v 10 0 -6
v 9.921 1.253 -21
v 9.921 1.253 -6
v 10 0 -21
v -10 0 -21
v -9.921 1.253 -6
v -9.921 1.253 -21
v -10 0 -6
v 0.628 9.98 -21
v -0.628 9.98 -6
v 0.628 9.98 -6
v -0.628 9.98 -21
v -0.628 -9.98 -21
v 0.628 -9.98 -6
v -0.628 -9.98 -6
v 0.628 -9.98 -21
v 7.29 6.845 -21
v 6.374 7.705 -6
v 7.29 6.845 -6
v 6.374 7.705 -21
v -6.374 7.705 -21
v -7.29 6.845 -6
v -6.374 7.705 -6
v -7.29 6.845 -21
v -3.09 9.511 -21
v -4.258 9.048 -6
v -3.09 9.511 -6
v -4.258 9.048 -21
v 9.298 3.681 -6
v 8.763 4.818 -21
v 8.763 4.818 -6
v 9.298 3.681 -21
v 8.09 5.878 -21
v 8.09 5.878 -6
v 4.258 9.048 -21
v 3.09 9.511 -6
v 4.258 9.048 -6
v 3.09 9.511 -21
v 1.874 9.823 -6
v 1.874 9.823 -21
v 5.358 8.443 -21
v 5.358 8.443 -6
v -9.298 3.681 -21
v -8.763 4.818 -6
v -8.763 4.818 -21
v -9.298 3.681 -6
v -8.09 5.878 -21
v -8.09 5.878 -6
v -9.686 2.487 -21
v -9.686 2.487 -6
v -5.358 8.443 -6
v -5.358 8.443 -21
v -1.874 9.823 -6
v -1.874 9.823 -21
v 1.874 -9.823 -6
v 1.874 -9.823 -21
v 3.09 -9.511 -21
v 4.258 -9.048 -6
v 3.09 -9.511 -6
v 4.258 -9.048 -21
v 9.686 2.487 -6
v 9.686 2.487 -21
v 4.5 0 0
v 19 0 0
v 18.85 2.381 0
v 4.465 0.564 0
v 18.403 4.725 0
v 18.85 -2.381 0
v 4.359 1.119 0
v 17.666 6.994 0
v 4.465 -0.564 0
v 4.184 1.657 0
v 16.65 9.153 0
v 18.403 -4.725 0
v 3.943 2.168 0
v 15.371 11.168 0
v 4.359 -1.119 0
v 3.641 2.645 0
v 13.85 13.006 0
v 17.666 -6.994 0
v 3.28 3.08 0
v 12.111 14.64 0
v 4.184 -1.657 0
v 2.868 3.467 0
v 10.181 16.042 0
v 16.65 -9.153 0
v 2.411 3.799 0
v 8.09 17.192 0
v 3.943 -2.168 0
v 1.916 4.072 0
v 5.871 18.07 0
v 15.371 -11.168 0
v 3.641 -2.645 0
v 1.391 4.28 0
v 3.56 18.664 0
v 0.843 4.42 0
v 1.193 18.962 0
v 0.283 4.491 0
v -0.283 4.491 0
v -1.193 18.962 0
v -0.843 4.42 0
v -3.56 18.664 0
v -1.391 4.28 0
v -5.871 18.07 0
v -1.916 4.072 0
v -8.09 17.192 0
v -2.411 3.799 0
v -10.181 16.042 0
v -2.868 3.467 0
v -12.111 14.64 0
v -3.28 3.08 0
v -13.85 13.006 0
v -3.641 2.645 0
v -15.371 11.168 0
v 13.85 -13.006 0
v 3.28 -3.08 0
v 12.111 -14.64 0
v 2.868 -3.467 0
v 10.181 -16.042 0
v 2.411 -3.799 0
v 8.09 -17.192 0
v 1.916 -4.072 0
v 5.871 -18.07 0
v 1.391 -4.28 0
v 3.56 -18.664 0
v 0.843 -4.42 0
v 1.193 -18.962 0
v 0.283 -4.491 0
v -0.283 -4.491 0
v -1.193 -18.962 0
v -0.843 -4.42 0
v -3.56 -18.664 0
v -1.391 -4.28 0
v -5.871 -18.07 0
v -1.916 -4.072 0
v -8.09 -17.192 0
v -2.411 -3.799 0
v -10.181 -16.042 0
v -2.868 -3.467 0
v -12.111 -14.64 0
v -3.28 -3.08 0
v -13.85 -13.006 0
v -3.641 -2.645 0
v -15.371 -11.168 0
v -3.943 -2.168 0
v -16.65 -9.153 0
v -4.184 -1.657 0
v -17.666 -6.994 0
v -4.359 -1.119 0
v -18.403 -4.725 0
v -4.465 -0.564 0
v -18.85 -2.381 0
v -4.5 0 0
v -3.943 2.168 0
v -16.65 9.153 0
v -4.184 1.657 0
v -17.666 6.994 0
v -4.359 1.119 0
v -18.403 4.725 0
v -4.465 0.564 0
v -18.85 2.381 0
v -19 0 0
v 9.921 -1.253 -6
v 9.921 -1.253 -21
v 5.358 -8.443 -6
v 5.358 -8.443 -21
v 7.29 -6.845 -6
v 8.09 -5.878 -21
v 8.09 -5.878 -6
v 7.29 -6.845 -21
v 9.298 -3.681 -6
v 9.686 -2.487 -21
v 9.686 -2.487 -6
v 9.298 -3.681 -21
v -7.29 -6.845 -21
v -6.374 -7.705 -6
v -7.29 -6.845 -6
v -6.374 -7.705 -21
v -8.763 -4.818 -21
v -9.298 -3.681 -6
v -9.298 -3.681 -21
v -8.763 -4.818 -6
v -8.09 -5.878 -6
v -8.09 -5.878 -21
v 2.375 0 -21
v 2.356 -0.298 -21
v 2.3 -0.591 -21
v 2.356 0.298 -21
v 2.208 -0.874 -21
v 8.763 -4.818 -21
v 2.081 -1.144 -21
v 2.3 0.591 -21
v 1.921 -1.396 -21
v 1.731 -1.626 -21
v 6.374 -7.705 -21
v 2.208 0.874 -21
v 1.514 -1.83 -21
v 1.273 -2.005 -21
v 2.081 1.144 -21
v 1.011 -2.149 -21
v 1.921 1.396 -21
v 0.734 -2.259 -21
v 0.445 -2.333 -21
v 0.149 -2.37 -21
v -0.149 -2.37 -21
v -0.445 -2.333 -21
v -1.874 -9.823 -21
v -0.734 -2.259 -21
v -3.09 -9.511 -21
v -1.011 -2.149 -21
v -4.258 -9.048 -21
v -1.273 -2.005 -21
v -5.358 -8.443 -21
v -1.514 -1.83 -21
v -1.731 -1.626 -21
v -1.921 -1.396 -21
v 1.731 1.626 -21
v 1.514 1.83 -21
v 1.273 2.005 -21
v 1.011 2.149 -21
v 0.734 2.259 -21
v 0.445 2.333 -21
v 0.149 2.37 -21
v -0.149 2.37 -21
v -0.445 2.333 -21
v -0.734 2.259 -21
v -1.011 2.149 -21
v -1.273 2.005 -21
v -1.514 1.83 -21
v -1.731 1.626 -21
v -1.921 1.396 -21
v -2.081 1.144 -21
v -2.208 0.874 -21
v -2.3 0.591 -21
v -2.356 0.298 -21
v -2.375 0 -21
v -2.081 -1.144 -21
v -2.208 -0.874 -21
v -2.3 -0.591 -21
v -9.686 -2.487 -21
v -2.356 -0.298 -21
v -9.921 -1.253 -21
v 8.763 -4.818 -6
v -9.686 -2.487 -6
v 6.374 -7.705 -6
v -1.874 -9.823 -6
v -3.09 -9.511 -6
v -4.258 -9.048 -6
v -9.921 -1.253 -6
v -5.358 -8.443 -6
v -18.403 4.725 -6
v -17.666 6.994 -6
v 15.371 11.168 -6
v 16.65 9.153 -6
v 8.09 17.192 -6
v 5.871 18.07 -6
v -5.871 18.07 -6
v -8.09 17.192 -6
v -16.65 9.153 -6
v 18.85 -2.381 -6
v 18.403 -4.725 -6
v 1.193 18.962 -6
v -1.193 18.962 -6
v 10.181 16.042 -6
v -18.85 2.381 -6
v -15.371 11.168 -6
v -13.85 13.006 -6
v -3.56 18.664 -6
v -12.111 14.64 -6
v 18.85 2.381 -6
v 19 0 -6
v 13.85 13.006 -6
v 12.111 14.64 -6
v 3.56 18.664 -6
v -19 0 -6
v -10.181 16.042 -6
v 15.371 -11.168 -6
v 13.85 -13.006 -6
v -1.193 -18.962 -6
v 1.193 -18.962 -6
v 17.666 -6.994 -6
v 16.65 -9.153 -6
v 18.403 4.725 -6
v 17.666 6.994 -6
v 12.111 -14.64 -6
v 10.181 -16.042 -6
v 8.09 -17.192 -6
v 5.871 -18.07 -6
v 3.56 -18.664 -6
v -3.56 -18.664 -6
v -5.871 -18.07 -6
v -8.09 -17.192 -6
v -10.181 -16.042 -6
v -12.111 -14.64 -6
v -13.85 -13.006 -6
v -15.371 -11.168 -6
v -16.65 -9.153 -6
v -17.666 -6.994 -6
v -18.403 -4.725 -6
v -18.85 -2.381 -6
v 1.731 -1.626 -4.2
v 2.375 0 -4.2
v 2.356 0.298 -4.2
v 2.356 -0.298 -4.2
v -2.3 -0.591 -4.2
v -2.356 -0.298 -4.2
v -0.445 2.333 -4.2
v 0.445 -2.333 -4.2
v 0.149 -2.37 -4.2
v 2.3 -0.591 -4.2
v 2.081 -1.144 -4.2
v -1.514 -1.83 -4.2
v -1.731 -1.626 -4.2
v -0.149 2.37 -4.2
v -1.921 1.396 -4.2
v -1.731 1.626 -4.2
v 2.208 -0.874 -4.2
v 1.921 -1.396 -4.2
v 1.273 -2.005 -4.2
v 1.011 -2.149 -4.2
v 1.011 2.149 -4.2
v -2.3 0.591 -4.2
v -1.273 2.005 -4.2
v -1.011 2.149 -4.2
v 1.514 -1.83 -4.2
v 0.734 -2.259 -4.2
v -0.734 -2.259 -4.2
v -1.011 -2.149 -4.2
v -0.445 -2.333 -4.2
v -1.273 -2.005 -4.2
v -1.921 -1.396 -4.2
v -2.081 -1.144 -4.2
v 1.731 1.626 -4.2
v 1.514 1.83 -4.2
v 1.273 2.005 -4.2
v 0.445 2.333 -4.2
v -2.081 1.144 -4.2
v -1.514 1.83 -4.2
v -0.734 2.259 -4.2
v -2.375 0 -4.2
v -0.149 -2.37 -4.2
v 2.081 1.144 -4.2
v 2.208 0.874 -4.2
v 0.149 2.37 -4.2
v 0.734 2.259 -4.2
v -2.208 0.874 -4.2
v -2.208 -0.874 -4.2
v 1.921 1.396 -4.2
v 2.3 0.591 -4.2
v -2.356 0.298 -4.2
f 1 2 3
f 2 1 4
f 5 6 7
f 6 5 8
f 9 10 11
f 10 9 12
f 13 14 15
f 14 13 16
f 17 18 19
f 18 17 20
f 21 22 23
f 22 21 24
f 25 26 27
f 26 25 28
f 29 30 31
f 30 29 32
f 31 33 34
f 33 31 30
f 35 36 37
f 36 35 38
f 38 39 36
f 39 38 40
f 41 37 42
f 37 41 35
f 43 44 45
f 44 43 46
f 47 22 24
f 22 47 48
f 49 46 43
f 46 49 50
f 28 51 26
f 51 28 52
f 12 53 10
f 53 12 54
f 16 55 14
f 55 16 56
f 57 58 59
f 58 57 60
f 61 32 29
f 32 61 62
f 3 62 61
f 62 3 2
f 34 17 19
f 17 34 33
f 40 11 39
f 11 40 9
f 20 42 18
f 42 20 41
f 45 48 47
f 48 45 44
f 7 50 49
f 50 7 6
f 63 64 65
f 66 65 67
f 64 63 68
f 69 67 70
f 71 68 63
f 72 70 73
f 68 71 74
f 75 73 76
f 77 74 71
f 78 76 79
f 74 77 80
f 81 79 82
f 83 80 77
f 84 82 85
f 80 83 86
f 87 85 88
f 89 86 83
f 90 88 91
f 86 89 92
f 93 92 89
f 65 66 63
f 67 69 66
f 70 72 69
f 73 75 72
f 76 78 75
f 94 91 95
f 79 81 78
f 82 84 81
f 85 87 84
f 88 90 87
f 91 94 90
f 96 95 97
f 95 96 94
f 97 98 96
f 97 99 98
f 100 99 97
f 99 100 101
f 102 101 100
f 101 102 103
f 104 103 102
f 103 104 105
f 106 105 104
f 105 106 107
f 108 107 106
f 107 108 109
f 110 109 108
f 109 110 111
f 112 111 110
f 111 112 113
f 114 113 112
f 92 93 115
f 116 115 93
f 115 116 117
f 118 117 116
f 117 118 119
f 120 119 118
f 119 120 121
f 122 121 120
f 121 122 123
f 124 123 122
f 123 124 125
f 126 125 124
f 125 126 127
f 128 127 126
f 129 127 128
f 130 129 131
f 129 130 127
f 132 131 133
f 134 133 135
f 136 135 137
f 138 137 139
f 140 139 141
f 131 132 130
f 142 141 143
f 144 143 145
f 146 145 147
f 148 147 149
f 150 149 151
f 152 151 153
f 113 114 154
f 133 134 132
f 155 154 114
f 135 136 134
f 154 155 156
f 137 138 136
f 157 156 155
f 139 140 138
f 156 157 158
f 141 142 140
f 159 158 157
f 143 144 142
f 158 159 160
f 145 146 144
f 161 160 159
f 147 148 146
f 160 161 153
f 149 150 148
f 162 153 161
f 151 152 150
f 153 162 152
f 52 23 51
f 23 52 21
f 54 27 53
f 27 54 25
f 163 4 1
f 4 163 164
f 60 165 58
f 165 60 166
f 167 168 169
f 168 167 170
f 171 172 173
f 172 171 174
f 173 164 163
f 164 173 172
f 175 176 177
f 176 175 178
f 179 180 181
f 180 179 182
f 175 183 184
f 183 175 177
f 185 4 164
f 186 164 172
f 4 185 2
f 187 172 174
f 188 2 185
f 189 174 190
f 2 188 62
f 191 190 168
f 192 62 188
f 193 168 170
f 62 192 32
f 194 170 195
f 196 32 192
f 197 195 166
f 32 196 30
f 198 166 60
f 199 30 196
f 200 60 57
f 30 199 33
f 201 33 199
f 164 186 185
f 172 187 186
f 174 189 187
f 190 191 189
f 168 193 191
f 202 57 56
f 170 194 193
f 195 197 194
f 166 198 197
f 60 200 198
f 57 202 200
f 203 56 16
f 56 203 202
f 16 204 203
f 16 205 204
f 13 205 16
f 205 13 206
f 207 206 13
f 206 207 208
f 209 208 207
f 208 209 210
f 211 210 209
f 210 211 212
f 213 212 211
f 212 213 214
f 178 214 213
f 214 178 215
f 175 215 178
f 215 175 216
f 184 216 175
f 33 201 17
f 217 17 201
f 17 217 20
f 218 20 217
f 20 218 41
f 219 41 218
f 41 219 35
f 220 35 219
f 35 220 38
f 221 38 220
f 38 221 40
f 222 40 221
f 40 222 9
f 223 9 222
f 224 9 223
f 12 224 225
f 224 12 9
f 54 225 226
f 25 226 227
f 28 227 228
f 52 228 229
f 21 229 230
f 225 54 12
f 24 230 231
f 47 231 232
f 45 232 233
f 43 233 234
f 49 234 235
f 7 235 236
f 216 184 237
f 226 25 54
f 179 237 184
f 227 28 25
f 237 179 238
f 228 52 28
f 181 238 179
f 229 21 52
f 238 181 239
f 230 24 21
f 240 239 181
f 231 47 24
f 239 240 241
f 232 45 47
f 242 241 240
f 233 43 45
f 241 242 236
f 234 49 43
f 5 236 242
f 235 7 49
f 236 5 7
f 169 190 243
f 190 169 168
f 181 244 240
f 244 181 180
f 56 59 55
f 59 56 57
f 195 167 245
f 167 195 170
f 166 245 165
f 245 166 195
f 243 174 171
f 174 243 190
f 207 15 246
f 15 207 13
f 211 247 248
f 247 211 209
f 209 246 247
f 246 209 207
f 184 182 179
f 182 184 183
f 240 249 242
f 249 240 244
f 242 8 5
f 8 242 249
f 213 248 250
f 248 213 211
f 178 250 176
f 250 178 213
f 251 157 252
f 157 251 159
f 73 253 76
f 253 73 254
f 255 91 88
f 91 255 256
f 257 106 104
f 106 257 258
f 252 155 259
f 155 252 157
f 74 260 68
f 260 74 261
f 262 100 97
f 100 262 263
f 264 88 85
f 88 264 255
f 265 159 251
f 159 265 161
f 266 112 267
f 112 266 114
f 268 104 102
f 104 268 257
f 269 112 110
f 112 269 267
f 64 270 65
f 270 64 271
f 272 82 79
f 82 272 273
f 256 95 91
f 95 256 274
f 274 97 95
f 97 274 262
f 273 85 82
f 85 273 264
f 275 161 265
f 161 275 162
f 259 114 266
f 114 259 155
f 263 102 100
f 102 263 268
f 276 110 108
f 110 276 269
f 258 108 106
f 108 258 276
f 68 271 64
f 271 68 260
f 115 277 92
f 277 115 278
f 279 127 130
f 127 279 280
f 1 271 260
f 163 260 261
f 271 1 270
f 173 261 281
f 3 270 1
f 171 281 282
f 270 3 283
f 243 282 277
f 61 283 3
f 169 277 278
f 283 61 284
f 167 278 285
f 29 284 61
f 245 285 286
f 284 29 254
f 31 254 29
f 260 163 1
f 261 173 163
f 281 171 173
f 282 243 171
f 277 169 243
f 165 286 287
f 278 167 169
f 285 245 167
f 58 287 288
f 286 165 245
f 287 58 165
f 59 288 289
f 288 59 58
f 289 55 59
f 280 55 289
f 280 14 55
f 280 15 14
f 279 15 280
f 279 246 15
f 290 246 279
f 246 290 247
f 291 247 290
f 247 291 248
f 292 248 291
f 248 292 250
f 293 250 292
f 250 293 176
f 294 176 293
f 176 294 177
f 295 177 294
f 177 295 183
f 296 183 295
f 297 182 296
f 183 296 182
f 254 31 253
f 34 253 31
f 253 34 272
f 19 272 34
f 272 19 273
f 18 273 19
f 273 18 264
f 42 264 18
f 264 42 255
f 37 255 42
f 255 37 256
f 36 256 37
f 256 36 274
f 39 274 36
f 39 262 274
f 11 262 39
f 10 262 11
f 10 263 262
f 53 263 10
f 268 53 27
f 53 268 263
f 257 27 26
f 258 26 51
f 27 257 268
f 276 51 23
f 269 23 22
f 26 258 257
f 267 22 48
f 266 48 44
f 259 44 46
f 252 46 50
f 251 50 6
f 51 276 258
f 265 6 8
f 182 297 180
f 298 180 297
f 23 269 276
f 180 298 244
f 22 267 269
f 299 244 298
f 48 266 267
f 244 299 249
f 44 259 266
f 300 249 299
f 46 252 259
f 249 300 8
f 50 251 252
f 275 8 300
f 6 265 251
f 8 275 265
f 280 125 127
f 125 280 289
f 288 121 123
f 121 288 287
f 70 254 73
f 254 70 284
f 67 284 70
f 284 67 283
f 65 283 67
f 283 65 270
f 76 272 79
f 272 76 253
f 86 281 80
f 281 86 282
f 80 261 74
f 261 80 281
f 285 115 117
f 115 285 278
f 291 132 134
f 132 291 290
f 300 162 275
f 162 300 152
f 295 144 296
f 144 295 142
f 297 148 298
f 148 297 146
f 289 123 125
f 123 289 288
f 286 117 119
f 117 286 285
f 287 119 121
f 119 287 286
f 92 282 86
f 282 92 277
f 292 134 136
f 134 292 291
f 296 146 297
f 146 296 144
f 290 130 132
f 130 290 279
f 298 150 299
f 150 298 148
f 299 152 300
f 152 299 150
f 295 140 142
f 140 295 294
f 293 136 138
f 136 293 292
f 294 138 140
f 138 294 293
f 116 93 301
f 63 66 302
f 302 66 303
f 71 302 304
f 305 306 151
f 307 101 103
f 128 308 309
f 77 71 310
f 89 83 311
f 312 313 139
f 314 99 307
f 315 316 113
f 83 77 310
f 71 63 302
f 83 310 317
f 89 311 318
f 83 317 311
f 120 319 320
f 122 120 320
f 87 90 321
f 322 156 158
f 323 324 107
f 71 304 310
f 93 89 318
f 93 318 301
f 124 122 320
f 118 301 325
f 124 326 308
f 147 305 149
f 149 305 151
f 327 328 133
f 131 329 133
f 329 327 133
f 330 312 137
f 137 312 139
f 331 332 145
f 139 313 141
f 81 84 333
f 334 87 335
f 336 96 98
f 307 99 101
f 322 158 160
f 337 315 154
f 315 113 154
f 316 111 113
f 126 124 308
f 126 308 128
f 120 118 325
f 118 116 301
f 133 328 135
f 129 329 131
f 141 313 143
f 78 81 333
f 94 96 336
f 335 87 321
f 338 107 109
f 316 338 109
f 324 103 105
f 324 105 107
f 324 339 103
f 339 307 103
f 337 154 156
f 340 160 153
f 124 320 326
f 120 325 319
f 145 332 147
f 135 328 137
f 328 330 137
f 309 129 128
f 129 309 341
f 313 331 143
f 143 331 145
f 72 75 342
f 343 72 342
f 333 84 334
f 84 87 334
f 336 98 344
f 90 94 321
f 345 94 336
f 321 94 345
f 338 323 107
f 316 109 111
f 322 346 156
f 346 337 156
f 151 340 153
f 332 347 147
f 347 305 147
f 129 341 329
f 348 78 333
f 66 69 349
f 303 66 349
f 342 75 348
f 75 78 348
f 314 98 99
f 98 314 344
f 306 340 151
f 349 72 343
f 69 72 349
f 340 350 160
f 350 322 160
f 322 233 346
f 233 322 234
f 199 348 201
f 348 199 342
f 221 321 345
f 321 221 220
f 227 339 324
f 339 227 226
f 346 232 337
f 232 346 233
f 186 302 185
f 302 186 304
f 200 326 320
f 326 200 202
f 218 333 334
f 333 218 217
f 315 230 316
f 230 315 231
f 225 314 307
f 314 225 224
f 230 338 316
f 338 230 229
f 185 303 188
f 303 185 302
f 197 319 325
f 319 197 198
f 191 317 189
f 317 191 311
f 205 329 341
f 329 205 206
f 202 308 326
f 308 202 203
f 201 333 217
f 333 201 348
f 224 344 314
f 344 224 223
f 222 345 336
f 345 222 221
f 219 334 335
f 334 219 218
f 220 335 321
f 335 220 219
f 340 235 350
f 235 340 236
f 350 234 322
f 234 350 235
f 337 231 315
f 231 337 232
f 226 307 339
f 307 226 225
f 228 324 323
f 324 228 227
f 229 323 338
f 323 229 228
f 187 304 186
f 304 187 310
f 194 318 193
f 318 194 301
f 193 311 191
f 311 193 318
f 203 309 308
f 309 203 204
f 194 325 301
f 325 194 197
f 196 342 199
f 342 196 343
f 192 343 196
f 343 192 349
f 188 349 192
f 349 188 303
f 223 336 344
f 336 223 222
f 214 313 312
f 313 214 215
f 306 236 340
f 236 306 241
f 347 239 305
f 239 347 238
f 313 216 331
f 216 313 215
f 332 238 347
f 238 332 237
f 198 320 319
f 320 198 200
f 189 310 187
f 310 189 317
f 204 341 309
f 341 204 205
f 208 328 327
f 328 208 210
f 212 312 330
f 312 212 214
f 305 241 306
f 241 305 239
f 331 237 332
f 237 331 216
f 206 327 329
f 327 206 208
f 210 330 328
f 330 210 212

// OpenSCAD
$fn = 50;


difference() {
	union() {
		translate(v = [0, 0, -21.0000000000]) {
			cylinder(h = 21, r = 10.0000000000);
		}
		translate(v = [0, 0, -6.0000000000]) {
			cylinder(h = 6, r = 19.0000000000);
		}
	}
	union() {
		translate(v = [0, 0, 0]) {
			rotate(a = [0, 0, 0]) {
				difference() {
					union() {
						#translate(v = [0, 0, -21.0000000000]) {
							cylinder(h = 21, r = 2.2500000000);
						}
						#translate(v = [0, 0, -4.2000000000]) {
							cylinder(h = 4.2000000000, r = 10.0000000000, r1 = 2.3750000000, r2 = 4.5000000000);
						}
						#translate(v = [0, 0, -21.0000000000]) {
							cylinder(h = 21, r = 2.3750000000);
						}
						#translate(v = [0, 0, -21.0000000000]) {
							cylinder(h = 21, r = 2.2500000000);
						}
					}
					union();
				}
			}
		}
	}
}
